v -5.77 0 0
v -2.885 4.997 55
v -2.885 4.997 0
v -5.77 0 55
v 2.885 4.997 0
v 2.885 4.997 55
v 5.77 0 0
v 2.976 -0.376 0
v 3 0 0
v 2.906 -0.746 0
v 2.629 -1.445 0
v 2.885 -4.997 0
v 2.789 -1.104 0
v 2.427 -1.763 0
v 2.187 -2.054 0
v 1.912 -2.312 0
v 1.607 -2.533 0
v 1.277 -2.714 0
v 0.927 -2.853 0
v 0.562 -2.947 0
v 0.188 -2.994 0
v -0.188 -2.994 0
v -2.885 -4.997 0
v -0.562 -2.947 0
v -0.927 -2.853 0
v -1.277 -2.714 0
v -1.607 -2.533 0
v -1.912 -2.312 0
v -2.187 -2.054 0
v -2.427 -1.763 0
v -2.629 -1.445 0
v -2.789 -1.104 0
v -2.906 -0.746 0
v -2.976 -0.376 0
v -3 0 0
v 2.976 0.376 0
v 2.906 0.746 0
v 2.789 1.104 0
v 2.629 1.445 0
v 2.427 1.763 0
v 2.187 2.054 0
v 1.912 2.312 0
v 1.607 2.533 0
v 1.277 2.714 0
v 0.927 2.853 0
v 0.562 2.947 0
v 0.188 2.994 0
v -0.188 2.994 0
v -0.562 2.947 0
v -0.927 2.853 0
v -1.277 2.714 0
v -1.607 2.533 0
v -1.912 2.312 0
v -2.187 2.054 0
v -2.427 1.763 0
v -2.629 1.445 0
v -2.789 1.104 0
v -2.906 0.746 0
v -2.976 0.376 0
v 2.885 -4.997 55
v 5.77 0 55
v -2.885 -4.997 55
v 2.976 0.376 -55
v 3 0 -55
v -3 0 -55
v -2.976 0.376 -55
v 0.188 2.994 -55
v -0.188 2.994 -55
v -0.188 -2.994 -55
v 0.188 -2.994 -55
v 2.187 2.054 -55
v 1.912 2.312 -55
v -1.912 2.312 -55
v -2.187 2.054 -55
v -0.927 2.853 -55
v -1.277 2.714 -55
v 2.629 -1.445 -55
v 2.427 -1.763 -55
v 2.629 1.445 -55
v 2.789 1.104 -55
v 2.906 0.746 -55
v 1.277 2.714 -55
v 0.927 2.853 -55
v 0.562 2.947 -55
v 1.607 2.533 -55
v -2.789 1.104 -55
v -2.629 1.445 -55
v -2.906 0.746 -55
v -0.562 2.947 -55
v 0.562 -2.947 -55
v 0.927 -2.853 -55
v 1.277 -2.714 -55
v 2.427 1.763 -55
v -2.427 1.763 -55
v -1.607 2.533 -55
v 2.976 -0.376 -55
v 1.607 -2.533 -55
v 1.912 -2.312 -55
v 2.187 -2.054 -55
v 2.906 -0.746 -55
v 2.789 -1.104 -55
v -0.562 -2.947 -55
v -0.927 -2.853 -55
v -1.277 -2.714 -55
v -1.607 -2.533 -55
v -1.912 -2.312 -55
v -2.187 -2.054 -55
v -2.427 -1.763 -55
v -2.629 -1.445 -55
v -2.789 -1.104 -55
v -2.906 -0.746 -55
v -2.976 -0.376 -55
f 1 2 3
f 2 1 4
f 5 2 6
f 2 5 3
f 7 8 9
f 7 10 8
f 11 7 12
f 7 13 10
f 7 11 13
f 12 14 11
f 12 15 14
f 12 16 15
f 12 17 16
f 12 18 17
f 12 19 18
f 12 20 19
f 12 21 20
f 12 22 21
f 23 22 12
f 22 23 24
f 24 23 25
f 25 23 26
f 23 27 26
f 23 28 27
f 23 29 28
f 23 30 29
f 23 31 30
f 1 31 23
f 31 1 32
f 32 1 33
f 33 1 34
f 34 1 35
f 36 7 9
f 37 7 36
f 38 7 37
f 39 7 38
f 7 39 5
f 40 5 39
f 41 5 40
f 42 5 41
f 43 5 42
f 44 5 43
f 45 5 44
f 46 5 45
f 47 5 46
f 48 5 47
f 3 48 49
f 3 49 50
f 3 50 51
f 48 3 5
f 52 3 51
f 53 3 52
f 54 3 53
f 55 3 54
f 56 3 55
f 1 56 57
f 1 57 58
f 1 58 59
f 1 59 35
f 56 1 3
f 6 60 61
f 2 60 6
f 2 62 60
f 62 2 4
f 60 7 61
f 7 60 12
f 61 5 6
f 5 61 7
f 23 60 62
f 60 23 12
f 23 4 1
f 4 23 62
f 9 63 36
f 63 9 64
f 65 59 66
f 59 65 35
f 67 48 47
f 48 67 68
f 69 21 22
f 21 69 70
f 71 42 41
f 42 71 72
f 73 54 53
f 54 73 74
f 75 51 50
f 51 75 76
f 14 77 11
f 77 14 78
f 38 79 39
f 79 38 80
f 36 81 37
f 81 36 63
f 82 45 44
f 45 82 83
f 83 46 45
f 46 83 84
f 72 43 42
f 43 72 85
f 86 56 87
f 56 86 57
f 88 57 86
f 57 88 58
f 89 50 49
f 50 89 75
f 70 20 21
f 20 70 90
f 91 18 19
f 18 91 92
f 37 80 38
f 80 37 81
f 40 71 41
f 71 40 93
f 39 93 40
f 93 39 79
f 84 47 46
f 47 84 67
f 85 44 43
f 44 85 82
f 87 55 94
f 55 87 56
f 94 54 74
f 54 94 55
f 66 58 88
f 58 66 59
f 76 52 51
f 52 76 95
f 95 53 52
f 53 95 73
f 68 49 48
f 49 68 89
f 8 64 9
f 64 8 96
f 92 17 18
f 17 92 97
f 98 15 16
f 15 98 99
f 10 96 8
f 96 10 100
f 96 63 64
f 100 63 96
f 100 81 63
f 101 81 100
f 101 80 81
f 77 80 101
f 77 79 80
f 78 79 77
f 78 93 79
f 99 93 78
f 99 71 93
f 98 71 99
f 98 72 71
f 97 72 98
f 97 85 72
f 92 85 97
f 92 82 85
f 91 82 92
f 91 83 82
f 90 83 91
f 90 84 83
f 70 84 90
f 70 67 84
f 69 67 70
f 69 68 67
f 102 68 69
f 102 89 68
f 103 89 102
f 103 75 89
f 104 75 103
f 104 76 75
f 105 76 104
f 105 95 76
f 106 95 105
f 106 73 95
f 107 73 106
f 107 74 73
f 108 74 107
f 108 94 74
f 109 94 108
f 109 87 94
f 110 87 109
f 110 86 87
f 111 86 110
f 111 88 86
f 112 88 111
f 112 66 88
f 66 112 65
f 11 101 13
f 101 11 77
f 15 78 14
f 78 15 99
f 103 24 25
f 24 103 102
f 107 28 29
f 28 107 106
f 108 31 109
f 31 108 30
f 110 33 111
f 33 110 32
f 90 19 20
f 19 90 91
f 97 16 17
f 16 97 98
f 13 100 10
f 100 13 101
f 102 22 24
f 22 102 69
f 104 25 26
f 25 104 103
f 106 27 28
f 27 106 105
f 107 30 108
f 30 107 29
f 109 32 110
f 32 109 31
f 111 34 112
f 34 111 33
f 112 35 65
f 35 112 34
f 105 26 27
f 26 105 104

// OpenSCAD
$fn = 50;


difference() {
	union() {
		translate(v = [0, 0, 0]) {
			rotate(a = [0, 0, 0]) {
				translate(v = [0, 0, 0]) {
					rotate(a = [0, 0, 0]) {
						linear_extrude(height = 55) {
							polygon(points = [[5.7700000000, 0.0000000000], [2.8850000000, 4.9969665798], [-2.8850000000, 4.9969665798], [-5.7700000000, 0.0000000000], [-2.8850000000, -4.9969665798], [2.8850000000, -4.9969665798]]);
						}
					}
				}
			}
		}
		translate(v = [0, 0, -55]) {
			rotate(a = [0, 0, 0]) {
				cylinder(h = 55, r = 3.0000000000);
			}
		}
	}
	union();
}
